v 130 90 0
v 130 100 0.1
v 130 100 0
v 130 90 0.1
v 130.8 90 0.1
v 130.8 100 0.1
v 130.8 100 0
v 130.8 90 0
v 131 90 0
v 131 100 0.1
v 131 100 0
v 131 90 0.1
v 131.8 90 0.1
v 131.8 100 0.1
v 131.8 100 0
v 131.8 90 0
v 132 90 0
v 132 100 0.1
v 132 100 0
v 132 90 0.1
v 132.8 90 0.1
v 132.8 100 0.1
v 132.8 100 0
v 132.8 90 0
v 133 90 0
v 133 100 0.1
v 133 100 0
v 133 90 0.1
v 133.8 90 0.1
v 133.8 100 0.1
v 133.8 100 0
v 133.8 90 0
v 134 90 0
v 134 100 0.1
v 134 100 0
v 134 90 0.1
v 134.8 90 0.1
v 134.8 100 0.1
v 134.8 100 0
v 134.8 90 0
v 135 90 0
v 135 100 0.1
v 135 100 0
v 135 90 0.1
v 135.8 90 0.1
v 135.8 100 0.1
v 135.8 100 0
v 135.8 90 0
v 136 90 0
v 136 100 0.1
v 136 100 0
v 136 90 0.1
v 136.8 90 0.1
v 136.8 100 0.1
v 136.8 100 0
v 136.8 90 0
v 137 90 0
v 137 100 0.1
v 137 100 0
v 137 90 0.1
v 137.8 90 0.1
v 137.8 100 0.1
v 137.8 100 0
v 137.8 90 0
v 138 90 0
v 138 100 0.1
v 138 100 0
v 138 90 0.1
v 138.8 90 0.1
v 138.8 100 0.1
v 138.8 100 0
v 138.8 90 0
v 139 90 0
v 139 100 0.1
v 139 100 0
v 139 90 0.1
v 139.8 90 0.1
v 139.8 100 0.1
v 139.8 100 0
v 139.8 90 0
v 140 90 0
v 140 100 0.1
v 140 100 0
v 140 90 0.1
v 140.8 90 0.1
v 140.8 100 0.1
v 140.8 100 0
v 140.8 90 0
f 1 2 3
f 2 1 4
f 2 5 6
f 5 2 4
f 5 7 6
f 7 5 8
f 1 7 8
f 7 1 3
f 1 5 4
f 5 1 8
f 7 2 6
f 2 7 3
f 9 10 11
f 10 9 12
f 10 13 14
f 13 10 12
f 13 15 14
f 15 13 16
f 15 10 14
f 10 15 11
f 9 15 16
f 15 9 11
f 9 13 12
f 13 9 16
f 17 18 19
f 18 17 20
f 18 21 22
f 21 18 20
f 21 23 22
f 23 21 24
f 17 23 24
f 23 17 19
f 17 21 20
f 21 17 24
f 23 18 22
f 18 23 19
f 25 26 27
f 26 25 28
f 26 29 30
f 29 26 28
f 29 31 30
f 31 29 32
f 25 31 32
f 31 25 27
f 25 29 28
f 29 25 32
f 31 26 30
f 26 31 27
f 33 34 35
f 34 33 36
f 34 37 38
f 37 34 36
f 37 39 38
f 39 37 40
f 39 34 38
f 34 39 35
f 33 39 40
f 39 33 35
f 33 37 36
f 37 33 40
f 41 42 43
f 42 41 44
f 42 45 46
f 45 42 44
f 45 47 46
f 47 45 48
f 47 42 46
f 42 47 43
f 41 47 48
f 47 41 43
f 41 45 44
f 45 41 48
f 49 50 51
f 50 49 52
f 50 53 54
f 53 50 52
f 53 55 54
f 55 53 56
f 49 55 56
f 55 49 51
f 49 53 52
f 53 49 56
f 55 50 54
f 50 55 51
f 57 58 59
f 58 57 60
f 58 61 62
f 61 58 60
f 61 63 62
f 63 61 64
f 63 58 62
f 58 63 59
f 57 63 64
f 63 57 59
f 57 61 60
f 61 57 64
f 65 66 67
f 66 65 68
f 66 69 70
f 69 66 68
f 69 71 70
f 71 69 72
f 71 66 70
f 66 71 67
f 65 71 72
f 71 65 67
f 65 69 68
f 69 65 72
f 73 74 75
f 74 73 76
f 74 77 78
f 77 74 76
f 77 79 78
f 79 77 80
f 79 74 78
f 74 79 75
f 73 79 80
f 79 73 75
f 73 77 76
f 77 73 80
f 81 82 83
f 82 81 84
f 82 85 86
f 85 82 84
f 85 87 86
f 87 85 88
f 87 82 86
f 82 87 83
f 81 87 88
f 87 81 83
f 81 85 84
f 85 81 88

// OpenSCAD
translate([10+120,10+80,0])
        for (i = [0 : 10]){
            translate([i,0,0])
                cube(size = [0.8,10,0.1]);
    }
